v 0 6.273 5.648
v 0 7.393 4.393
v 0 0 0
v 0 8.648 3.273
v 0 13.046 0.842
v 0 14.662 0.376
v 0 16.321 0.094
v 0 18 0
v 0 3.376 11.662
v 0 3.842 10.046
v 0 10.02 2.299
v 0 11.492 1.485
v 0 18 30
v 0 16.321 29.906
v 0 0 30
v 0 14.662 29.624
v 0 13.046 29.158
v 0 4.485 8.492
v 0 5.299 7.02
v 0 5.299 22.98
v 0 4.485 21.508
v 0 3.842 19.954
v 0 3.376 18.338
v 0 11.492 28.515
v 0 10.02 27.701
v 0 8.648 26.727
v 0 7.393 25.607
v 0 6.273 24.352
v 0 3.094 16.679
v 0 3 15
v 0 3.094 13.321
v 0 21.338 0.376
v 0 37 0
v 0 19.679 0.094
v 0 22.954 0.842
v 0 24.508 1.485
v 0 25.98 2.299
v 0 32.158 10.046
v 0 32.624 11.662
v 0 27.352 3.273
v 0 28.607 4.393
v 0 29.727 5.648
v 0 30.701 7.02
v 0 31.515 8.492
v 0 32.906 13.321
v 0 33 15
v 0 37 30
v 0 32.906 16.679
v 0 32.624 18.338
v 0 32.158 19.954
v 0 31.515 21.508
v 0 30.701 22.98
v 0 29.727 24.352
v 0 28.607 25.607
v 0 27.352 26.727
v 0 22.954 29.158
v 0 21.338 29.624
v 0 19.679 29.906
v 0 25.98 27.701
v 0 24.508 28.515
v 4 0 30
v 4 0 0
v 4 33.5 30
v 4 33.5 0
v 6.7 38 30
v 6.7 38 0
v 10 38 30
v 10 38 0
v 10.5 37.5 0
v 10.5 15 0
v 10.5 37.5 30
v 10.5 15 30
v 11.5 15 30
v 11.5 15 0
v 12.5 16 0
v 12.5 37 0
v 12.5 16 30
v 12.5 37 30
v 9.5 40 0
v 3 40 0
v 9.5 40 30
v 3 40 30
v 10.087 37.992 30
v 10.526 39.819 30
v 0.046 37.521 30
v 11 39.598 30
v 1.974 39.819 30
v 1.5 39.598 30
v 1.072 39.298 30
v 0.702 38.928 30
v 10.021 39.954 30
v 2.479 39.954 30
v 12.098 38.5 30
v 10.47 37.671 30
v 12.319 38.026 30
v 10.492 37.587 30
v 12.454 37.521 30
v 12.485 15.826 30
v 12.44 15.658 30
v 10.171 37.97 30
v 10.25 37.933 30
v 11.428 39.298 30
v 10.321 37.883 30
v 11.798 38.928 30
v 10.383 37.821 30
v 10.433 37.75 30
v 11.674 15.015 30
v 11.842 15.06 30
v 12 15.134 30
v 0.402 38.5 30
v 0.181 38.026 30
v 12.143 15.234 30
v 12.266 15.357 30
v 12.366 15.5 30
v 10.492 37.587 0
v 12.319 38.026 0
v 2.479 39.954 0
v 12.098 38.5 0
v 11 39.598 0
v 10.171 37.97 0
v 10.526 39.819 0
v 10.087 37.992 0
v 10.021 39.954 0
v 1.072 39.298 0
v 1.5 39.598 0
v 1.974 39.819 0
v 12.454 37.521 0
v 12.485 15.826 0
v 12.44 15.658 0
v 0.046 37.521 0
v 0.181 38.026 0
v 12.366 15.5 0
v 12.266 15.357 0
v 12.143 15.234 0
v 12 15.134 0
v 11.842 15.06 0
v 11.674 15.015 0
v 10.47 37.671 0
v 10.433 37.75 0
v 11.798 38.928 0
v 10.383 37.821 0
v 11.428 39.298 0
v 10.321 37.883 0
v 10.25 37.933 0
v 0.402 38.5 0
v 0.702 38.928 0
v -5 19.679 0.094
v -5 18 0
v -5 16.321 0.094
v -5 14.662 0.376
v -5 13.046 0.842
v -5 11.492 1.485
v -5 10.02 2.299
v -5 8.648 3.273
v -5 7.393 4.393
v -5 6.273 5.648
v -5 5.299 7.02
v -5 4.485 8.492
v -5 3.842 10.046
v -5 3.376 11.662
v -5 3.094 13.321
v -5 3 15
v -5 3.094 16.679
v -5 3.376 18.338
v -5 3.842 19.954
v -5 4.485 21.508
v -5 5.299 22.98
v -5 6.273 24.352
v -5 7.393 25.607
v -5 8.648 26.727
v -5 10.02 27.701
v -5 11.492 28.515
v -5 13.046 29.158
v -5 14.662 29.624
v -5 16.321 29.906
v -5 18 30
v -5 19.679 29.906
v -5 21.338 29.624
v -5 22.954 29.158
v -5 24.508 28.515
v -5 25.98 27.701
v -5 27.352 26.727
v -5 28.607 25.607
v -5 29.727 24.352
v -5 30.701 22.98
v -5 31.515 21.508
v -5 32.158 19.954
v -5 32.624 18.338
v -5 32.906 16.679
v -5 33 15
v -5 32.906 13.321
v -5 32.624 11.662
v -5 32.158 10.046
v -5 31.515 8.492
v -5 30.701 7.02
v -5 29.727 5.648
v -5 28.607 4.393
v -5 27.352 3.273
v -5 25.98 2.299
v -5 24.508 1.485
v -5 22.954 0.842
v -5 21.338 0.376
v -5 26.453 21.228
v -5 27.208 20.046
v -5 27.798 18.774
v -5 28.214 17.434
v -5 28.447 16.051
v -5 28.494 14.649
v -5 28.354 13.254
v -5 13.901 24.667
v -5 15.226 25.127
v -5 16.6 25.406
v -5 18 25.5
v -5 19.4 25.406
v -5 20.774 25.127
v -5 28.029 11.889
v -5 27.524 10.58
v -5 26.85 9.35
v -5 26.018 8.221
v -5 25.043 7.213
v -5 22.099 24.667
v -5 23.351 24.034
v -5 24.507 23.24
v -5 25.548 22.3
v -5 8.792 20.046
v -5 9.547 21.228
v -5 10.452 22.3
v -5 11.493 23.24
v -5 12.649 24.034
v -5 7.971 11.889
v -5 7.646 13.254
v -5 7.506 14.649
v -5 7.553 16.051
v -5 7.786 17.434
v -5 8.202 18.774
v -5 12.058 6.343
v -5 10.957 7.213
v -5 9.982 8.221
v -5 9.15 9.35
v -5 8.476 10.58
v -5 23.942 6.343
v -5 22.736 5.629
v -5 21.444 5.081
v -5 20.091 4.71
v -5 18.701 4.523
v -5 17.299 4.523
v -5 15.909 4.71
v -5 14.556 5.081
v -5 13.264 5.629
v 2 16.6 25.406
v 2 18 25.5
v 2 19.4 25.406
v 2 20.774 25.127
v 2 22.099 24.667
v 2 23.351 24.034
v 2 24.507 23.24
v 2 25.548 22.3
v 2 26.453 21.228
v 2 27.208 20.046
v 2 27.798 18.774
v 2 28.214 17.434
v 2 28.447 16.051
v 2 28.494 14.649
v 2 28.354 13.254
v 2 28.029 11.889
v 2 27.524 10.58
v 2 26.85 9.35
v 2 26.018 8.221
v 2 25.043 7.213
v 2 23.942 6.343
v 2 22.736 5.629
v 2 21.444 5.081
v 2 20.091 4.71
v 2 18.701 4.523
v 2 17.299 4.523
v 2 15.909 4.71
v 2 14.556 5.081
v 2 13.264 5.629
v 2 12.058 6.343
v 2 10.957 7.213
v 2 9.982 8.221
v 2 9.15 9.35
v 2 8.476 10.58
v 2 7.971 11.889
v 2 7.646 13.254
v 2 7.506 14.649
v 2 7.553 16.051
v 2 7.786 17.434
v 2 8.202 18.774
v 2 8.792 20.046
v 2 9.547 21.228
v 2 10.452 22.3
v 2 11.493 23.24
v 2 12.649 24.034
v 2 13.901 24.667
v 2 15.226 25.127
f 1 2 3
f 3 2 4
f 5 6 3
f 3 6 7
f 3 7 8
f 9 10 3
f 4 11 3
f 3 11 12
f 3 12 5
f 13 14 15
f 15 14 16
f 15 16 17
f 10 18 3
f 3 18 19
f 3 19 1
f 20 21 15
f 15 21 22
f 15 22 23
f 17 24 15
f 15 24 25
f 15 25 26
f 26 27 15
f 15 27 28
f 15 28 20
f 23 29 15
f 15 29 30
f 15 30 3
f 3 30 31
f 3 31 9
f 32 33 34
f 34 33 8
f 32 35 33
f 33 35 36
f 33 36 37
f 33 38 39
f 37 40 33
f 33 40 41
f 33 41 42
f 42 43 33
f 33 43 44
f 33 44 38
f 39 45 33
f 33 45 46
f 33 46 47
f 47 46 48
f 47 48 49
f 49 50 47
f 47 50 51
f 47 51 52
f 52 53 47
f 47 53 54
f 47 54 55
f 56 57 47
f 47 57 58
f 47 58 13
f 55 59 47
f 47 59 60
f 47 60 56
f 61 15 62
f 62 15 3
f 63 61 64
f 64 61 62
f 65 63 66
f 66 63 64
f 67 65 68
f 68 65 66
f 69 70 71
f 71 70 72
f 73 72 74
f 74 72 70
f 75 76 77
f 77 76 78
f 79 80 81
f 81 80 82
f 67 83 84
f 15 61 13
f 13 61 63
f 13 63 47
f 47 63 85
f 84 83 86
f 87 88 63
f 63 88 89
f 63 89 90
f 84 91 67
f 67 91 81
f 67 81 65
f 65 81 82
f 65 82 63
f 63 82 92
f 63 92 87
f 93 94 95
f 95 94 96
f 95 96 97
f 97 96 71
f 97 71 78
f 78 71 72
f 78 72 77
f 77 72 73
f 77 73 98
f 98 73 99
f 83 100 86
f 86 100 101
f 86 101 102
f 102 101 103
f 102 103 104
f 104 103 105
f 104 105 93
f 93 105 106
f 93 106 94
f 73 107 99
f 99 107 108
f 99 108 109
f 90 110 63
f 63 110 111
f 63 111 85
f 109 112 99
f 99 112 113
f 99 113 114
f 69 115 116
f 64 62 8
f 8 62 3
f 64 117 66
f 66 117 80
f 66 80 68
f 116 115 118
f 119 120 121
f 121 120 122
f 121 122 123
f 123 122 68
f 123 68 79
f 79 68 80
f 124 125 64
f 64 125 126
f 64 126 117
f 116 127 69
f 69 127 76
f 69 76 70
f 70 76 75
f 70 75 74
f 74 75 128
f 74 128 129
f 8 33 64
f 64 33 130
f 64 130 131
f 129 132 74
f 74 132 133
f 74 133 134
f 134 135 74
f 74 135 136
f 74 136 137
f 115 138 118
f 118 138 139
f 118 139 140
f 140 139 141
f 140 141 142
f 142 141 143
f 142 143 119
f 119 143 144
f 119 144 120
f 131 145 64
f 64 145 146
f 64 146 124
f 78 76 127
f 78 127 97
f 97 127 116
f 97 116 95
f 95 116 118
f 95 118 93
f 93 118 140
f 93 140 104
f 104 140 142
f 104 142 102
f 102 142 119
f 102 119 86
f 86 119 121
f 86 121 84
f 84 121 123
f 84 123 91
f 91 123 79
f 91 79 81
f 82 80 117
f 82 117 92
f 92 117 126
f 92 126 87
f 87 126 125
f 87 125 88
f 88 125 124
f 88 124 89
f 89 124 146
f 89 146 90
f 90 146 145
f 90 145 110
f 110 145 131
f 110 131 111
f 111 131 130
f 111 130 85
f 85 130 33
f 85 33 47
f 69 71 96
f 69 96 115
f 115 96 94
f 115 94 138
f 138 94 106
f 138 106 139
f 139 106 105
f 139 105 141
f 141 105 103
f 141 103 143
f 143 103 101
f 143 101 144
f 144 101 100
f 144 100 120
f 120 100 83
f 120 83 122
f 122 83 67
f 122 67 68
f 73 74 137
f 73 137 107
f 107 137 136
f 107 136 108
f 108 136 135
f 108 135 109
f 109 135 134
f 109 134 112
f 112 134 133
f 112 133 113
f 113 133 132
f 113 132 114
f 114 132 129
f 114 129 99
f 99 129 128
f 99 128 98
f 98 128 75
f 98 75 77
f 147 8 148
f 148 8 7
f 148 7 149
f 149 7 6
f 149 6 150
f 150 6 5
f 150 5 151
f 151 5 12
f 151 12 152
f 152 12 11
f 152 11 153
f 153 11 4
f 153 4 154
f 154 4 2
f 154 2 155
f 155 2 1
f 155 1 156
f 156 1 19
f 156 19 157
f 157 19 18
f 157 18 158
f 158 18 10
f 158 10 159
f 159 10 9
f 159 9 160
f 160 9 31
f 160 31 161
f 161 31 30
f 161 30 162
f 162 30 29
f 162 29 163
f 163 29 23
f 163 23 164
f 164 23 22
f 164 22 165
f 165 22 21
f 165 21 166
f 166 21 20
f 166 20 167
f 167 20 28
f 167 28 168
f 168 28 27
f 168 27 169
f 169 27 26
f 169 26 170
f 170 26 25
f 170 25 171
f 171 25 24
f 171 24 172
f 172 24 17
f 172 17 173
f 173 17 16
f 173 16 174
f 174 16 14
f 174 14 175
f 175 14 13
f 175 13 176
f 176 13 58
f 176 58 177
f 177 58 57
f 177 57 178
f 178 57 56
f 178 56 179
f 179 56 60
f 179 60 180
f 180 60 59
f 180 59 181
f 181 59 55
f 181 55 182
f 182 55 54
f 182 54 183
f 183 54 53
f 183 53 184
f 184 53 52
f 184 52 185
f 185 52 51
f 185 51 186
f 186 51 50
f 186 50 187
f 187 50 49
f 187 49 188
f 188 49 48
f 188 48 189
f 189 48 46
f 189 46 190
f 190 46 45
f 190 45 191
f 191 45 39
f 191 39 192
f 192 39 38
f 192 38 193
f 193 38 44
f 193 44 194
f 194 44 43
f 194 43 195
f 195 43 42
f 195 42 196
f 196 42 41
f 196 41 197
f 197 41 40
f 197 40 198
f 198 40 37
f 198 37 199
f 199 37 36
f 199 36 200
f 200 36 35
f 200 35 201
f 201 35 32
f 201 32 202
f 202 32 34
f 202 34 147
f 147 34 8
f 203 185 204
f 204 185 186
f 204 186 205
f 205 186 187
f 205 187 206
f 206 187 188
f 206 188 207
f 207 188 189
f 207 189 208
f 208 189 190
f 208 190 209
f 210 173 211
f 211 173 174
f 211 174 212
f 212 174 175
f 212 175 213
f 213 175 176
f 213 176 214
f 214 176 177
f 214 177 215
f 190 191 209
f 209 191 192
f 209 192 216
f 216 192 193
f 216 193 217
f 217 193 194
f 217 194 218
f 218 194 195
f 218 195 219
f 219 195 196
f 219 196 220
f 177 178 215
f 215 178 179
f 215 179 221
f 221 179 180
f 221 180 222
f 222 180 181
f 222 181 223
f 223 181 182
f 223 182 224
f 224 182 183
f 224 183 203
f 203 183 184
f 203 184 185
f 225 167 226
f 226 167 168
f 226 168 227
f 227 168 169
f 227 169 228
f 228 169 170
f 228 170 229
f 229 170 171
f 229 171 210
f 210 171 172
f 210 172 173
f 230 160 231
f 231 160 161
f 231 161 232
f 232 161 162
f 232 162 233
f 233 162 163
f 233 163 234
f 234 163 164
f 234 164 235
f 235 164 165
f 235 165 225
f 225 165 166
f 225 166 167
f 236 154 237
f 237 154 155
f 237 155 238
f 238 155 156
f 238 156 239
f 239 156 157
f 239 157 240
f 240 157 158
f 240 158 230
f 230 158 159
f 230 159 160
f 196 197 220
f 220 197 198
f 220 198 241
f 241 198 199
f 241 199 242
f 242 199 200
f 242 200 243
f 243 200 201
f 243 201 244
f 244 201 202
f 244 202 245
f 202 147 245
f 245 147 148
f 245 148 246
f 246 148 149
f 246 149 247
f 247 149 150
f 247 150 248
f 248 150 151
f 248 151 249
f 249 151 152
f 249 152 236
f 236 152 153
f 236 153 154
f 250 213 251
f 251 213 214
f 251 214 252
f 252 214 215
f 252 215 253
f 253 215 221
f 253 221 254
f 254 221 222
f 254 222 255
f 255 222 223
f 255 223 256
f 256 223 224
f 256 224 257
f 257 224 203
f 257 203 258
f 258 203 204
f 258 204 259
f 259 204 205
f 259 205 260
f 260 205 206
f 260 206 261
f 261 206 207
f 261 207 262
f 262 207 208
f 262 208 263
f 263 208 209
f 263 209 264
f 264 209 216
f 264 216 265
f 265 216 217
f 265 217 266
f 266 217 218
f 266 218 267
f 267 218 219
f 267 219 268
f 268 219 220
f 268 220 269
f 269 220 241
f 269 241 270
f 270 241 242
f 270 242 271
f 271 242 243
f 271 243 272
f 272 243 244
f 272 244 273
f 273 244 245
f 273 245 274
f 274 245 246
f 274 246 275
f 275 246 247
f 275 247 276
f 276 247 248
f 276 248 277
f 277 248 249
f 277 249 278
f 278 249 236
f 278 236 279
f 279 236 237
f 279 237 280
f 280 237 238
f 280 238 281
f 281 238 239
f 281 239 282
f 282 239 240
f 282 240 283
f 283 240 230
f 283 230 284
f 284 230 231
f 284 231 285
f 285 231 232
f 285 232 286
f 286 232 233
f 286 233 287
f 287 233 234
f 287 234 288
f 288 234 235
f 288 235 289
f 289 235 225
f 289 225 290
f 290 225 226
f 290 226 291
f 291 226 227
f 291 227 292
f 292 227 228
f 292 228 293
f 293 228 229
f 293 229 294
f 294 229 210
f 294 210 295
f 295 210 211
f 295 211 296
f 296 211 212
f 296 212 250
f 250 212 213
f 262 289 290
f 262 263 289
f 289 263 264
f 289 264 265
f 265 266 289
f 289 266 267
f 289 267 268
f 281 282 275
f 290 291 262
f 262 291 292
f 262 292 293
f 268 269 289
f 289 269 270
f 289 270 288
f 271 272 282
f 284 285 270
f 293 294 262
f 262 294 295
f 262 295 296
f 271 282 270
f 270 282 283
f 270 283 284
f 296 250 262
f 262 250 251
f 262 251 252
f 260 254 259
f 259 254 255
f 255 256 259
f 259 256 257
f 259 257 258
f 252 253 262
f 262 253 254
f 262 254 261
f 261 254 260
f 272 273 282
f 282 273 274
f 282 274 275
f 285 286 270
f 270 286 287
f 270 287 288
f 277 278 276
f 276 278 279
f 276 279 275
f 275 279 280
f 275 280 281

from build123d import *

# Parameters (mm, degrees)
BOSS_EXTRUDE1_DEPTH = 30
FILLET1_R           = 3
FILLET2_R           = 0.5
FILLET3_R           = 1
SKETCH3_R           = 15
BOSS_EXTRUDE2_DEPTH = 5
SKETCH4_R           = 10.5
CUT_EXTRUDE2_DEPTH  = 7


with BuildPart() as part:
    # Sketch1 → Boss-Extrude1 (new body)
    with BuildSketch(Plane.XY):
        Polygon((0, 0), (0, 40), (12.5, 40), (12.5, 15), (10.5, 15), (10.5, 38), (6.7, 38), (4, 33.5), (4, 0), align=None)
    extrude(amount=BOSS_EXTRUDE1_DEPTH)

    # Fillet1
    fillet1_edges = [part.edges().sort_by_distance(p)[0] for p in [
        (0, 40, 15),
        (12.5, 40, 15),
    ]]
    fillet(fillet1_edges, radius=FILLET1_R)

    # Fillet2
    fillet2_edges = [part.edges().sort_by_distance(p)[0] for p in [
        (10.5, 38, 15),
    ]]
    fillet(fillet2_edges, radius=FILLET2_R)

    # Fillet3
    fillet3_edges = [part.edges().sort_by_distance(p)[0] for p in [
        (12.5, 15, 15),
    ]]
    fillet(fillet3_edges, radius=FILLET3_R)

    # Sketch3 → Boss-Extrude2 (add)
    with BuildSketch(Plane.ZY):
        with Locations((15, 18)):
            Circle(SKETCH3_R)
    extrude(amount=BOSS_EXTRUDE2_DEPTH)

    # Sketch4 → Cut-Extrude2 (cut)
    with BuildSketch(Plane.ZY.offset(5)):
        with Locations((15, 18)):
            Circle(SKETCH4_R)
    extrude(amount=-CUT_EXTRUDE2_DEPTH, mode=Mode.SUBTRACT)


solid = part.part
